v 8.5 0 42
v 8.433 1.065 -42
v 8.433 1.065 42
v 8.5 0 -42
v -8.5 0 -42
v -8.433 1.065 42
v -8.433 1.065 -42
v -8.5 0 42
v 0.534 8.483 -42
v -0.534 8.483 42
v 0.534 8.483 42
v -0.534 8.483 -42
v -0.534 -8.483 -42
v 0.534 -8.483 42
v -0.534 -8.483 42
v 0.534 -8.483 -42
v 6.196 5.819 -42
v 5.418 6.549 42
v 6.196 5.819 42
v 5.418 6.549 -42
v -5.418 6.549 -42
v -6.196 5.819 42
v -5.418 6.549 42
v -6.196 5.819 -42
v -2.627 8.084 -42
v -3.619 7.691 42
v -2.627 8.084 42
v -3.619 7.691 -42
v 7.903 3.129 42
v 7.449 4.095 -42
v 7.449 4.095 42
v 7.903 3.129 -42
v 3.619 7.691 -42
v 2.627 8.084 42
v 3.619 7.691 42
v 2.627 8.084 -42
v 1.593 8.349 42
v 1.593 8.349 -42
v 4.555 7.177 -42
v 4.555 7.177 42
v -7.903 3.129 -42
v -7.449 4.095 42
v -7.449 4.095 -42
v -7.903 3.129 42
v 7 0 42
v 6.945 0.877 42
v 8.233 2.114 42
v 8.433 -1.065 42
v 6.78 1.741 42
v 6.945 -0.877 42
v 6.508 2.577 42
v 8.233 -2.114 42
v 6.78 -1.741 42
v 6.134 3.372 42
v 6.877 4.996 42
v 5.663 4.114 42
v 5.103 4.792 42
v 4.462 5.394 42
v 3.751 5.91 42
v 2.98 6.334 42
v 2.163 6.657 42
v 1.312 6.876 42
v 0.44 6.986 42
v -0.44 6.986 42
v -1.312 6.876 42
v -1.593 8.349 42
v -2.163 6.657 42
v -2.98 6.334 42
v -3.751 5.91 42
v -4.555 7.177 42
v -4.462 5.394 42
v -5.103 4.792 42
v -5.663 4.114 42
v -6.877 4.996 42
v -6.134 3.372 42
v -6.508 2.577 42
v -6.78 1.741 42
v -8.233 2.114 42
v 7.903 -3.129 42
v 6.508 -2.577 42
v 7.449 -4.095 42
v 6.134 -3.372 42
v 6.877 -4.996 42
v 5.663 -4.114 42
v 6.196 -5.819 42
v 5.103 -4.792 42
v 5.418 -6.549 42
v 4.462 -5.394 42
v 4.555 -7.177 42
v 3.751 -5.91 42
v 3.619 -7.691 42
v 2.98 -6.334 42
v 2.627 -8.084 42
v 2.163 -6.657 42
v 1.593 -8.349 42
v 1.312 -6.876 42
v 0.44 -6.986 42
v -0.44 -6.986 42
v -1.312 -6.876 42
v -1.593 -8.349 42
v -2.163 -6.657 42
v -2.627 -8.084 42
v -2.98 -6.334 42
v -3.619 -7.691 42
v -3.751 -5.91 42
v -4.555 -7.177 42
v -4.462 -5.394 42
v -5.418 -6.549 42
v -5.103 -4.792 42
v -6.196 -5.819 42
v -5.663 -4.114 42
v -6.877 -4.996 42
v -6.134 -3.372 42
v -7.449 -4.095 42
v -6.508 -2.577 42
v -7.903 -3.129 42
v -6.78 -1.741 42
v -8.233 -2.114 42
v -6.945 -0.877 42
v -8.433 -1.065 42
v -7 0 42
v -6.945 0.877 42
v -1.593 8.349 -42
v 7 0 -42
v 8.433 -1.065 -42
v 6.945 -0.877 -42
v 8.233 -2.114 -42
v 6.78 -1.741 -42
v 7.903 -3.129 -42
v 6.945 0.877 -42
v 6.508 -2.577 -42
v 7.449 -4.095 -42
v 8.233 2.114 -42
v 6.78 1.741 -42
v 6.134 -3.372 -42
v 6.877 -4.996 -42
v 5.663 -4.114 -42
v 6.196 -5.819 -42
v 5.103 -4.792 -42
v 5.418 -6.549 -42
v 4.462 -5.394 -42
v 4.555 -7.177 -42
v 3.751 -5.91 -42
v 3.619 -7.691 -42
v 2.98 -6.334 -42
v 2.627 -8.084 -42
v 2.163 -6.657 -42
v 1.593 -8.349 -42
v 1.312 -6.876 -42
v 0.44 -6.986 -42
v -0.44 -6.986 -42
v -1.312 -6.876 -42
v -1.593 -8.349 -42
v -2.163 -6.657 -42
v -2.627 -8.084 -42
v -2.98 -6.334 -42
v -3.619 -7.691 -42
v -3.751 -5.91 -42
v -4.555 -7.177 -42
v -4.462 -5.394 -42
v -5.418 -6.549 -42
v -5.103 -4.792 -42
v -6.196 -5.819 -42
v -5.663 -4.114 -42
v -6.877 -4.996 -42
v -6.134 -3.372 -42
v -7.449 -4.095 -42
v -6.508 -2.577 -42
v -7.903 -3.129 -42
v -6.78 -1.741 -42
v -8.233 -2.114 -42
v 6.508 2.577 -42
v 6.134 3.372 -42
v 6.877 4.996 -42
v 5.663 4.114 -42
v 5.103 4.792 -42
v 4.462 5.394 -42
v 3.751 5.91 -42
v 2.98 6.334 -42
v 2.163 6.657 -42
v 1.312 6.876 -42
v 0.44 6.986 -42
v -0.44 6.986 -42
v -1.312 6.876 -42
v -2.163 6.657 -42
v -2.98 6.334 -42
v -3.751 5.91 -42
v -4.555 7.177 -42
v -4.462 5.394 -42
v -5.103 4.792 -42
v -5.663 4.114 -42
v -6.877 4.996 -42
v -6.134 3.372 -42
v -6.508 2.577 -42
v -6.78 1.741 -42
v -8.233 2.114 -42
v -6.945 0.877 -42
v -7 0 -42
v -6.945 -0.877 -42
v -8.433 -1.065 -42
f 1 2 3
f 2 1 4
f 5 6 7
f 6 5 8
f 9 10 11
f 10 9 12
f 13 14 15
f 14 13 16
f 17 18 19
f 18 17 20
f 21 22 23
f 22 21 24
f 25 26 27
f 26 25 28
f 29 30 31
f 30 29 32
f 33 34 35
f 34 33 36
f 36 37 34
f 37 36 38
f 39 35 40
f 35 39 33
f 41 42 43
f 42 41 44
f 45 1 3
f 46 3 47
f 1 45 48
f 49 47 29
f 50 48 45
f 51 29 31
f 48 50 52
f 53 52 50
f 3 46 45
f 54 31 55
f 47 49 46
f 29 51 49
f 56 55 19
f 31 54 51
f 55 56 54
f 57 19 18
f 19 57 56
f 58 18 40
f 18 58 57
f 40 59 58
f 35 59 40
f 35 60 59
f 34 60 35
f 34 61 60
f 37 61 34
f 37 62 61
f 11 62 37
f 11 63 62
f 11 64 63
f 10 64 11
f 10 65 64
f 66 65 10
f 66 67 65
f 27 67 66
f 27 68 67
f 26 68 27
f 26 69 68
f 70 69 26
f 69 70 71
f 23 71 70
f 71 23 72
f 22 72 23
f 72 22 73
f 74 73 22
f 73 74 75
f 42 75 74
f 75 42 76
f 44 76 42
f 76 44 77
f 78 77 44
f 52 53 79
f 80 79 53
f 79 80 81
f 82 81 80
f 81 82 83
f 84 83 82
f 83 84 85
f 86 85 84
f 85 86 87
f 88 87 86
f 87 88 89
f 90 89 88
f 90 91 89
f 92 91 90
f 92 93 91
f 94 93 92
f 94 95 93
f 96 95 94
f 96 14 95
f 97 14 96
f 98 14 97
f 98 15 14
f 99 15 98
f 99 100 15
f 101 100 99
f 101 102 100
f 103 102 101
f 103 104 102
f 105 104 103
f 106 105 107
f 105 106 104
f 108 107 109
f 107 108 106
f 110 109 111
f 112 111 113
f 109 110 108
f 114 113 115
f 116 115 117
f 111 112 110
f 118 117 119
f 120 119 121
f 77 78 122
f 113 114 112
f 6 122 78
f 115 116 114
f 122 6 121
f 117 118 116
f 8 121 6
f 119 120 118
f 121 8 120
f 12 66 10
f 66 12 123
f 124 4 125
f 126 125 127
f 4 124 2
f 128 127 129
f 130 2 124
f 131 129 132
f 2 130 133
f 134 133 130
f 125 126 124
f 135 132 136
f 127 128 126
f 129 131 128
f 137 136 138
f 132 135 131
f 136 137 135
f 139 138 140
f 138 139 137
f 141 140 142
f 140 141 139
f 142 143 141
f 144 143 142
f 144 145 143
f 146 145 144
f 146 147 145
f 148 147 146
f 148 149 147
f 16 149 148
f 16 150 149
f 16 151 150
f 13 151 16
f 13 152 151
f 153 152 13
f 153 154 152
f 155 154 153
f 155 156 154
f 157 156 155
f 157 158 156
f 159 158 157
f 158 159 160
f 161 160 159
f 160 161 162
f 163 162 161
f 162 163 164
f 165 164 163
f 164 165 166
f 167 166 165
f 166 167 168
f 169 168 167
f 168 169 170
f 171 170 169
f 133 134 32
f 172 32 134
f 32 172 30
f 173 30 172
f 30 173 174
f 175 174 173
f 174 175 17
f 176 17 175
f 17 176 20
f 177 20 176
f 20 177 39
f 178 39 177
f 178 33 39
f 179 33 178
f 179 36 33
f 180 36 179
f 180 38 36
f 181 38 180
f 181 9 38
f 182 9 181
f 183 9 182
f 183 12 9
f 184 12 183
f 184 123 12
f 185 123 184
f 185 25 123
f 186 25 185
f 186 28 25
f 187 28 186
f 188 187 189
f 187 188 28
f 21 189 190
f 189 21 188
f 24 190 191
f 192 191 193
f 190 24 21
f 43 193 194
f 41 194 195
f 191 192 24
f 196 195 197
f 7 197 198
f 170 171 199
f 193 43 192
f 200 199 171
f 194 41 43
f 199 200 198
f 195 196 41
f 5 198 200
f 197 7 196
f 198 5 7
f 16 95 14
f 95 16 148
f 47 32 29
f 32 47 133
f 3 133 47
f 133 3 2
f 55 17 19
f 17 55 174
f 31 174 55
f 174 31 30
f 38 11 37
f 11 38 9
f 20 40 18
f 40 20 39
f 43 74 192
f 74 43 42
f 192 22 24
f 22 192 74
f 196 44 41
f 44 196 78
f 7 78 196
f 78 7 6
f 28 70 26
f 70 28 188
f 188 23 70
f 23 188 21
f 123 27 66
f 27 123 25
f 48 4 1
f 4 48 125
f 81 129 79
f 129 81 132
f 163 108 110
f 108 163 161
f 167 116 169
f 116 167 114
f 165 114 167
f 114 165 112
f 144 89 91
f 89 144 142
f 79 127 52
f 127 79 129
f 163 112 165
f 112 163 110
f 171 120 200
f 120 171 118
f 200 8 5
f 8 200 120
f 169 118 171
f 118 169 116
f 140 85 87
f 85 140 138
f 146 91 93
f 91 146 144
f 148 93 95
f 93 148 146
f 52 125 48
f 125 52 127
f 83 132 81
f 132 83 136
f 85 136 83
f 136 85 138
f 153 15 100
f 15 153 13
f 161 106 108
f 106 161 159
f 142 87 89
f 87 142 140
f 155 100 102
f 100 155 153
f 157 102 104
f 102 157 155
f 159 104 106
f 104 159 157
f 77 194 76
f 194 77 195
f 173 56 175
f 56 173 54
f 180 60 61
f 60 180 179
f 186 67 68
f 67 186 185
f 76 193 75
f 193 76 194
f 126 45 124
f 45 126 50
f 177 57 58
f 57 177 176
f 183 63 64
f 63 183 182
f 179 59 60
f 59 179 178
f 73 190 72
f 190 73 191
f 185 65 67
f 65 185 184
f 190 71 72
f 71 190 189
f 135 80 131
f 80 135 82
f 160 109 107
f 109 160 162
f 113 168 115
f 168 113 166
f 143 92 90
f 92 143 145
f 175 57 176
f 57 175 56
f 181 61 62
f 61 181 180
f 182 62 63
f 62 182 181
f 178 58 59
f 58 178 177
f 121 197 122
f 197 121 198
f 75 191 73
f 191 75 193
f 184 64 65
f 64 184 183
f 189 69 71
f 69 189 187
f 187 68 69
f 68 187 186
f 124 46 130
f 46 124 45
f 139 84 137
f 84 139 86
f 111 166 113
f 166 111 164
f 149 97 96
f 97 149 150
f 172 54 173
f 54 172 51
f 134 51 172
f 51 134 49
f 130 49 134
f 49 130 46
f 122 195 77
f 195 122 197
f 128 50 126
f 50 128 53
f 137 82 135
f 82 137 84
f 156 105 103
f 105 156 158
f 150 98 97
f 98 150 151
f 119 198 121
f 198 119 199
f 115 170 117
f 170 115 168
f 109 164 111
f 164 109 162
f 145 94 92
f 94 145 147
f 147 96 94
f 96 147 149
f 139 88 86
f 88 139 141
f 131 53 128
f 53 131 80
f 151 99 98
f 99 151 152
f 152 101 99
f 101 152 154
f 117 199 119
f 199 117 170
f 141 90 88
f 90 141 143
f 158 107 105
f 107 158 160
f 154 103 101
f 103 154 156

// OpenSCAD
$fn = 50;


difference() {
	union() {
		translate(v = [0, 0, -42.0000000000]) {
			cylinder(h = 84, r = 8.5000000000);
		}
	}
	union() {
		translate(v = [0, 0, -100.0000000000]) {
			cylinder(h = 200, r = 7);
		}
	}
}
